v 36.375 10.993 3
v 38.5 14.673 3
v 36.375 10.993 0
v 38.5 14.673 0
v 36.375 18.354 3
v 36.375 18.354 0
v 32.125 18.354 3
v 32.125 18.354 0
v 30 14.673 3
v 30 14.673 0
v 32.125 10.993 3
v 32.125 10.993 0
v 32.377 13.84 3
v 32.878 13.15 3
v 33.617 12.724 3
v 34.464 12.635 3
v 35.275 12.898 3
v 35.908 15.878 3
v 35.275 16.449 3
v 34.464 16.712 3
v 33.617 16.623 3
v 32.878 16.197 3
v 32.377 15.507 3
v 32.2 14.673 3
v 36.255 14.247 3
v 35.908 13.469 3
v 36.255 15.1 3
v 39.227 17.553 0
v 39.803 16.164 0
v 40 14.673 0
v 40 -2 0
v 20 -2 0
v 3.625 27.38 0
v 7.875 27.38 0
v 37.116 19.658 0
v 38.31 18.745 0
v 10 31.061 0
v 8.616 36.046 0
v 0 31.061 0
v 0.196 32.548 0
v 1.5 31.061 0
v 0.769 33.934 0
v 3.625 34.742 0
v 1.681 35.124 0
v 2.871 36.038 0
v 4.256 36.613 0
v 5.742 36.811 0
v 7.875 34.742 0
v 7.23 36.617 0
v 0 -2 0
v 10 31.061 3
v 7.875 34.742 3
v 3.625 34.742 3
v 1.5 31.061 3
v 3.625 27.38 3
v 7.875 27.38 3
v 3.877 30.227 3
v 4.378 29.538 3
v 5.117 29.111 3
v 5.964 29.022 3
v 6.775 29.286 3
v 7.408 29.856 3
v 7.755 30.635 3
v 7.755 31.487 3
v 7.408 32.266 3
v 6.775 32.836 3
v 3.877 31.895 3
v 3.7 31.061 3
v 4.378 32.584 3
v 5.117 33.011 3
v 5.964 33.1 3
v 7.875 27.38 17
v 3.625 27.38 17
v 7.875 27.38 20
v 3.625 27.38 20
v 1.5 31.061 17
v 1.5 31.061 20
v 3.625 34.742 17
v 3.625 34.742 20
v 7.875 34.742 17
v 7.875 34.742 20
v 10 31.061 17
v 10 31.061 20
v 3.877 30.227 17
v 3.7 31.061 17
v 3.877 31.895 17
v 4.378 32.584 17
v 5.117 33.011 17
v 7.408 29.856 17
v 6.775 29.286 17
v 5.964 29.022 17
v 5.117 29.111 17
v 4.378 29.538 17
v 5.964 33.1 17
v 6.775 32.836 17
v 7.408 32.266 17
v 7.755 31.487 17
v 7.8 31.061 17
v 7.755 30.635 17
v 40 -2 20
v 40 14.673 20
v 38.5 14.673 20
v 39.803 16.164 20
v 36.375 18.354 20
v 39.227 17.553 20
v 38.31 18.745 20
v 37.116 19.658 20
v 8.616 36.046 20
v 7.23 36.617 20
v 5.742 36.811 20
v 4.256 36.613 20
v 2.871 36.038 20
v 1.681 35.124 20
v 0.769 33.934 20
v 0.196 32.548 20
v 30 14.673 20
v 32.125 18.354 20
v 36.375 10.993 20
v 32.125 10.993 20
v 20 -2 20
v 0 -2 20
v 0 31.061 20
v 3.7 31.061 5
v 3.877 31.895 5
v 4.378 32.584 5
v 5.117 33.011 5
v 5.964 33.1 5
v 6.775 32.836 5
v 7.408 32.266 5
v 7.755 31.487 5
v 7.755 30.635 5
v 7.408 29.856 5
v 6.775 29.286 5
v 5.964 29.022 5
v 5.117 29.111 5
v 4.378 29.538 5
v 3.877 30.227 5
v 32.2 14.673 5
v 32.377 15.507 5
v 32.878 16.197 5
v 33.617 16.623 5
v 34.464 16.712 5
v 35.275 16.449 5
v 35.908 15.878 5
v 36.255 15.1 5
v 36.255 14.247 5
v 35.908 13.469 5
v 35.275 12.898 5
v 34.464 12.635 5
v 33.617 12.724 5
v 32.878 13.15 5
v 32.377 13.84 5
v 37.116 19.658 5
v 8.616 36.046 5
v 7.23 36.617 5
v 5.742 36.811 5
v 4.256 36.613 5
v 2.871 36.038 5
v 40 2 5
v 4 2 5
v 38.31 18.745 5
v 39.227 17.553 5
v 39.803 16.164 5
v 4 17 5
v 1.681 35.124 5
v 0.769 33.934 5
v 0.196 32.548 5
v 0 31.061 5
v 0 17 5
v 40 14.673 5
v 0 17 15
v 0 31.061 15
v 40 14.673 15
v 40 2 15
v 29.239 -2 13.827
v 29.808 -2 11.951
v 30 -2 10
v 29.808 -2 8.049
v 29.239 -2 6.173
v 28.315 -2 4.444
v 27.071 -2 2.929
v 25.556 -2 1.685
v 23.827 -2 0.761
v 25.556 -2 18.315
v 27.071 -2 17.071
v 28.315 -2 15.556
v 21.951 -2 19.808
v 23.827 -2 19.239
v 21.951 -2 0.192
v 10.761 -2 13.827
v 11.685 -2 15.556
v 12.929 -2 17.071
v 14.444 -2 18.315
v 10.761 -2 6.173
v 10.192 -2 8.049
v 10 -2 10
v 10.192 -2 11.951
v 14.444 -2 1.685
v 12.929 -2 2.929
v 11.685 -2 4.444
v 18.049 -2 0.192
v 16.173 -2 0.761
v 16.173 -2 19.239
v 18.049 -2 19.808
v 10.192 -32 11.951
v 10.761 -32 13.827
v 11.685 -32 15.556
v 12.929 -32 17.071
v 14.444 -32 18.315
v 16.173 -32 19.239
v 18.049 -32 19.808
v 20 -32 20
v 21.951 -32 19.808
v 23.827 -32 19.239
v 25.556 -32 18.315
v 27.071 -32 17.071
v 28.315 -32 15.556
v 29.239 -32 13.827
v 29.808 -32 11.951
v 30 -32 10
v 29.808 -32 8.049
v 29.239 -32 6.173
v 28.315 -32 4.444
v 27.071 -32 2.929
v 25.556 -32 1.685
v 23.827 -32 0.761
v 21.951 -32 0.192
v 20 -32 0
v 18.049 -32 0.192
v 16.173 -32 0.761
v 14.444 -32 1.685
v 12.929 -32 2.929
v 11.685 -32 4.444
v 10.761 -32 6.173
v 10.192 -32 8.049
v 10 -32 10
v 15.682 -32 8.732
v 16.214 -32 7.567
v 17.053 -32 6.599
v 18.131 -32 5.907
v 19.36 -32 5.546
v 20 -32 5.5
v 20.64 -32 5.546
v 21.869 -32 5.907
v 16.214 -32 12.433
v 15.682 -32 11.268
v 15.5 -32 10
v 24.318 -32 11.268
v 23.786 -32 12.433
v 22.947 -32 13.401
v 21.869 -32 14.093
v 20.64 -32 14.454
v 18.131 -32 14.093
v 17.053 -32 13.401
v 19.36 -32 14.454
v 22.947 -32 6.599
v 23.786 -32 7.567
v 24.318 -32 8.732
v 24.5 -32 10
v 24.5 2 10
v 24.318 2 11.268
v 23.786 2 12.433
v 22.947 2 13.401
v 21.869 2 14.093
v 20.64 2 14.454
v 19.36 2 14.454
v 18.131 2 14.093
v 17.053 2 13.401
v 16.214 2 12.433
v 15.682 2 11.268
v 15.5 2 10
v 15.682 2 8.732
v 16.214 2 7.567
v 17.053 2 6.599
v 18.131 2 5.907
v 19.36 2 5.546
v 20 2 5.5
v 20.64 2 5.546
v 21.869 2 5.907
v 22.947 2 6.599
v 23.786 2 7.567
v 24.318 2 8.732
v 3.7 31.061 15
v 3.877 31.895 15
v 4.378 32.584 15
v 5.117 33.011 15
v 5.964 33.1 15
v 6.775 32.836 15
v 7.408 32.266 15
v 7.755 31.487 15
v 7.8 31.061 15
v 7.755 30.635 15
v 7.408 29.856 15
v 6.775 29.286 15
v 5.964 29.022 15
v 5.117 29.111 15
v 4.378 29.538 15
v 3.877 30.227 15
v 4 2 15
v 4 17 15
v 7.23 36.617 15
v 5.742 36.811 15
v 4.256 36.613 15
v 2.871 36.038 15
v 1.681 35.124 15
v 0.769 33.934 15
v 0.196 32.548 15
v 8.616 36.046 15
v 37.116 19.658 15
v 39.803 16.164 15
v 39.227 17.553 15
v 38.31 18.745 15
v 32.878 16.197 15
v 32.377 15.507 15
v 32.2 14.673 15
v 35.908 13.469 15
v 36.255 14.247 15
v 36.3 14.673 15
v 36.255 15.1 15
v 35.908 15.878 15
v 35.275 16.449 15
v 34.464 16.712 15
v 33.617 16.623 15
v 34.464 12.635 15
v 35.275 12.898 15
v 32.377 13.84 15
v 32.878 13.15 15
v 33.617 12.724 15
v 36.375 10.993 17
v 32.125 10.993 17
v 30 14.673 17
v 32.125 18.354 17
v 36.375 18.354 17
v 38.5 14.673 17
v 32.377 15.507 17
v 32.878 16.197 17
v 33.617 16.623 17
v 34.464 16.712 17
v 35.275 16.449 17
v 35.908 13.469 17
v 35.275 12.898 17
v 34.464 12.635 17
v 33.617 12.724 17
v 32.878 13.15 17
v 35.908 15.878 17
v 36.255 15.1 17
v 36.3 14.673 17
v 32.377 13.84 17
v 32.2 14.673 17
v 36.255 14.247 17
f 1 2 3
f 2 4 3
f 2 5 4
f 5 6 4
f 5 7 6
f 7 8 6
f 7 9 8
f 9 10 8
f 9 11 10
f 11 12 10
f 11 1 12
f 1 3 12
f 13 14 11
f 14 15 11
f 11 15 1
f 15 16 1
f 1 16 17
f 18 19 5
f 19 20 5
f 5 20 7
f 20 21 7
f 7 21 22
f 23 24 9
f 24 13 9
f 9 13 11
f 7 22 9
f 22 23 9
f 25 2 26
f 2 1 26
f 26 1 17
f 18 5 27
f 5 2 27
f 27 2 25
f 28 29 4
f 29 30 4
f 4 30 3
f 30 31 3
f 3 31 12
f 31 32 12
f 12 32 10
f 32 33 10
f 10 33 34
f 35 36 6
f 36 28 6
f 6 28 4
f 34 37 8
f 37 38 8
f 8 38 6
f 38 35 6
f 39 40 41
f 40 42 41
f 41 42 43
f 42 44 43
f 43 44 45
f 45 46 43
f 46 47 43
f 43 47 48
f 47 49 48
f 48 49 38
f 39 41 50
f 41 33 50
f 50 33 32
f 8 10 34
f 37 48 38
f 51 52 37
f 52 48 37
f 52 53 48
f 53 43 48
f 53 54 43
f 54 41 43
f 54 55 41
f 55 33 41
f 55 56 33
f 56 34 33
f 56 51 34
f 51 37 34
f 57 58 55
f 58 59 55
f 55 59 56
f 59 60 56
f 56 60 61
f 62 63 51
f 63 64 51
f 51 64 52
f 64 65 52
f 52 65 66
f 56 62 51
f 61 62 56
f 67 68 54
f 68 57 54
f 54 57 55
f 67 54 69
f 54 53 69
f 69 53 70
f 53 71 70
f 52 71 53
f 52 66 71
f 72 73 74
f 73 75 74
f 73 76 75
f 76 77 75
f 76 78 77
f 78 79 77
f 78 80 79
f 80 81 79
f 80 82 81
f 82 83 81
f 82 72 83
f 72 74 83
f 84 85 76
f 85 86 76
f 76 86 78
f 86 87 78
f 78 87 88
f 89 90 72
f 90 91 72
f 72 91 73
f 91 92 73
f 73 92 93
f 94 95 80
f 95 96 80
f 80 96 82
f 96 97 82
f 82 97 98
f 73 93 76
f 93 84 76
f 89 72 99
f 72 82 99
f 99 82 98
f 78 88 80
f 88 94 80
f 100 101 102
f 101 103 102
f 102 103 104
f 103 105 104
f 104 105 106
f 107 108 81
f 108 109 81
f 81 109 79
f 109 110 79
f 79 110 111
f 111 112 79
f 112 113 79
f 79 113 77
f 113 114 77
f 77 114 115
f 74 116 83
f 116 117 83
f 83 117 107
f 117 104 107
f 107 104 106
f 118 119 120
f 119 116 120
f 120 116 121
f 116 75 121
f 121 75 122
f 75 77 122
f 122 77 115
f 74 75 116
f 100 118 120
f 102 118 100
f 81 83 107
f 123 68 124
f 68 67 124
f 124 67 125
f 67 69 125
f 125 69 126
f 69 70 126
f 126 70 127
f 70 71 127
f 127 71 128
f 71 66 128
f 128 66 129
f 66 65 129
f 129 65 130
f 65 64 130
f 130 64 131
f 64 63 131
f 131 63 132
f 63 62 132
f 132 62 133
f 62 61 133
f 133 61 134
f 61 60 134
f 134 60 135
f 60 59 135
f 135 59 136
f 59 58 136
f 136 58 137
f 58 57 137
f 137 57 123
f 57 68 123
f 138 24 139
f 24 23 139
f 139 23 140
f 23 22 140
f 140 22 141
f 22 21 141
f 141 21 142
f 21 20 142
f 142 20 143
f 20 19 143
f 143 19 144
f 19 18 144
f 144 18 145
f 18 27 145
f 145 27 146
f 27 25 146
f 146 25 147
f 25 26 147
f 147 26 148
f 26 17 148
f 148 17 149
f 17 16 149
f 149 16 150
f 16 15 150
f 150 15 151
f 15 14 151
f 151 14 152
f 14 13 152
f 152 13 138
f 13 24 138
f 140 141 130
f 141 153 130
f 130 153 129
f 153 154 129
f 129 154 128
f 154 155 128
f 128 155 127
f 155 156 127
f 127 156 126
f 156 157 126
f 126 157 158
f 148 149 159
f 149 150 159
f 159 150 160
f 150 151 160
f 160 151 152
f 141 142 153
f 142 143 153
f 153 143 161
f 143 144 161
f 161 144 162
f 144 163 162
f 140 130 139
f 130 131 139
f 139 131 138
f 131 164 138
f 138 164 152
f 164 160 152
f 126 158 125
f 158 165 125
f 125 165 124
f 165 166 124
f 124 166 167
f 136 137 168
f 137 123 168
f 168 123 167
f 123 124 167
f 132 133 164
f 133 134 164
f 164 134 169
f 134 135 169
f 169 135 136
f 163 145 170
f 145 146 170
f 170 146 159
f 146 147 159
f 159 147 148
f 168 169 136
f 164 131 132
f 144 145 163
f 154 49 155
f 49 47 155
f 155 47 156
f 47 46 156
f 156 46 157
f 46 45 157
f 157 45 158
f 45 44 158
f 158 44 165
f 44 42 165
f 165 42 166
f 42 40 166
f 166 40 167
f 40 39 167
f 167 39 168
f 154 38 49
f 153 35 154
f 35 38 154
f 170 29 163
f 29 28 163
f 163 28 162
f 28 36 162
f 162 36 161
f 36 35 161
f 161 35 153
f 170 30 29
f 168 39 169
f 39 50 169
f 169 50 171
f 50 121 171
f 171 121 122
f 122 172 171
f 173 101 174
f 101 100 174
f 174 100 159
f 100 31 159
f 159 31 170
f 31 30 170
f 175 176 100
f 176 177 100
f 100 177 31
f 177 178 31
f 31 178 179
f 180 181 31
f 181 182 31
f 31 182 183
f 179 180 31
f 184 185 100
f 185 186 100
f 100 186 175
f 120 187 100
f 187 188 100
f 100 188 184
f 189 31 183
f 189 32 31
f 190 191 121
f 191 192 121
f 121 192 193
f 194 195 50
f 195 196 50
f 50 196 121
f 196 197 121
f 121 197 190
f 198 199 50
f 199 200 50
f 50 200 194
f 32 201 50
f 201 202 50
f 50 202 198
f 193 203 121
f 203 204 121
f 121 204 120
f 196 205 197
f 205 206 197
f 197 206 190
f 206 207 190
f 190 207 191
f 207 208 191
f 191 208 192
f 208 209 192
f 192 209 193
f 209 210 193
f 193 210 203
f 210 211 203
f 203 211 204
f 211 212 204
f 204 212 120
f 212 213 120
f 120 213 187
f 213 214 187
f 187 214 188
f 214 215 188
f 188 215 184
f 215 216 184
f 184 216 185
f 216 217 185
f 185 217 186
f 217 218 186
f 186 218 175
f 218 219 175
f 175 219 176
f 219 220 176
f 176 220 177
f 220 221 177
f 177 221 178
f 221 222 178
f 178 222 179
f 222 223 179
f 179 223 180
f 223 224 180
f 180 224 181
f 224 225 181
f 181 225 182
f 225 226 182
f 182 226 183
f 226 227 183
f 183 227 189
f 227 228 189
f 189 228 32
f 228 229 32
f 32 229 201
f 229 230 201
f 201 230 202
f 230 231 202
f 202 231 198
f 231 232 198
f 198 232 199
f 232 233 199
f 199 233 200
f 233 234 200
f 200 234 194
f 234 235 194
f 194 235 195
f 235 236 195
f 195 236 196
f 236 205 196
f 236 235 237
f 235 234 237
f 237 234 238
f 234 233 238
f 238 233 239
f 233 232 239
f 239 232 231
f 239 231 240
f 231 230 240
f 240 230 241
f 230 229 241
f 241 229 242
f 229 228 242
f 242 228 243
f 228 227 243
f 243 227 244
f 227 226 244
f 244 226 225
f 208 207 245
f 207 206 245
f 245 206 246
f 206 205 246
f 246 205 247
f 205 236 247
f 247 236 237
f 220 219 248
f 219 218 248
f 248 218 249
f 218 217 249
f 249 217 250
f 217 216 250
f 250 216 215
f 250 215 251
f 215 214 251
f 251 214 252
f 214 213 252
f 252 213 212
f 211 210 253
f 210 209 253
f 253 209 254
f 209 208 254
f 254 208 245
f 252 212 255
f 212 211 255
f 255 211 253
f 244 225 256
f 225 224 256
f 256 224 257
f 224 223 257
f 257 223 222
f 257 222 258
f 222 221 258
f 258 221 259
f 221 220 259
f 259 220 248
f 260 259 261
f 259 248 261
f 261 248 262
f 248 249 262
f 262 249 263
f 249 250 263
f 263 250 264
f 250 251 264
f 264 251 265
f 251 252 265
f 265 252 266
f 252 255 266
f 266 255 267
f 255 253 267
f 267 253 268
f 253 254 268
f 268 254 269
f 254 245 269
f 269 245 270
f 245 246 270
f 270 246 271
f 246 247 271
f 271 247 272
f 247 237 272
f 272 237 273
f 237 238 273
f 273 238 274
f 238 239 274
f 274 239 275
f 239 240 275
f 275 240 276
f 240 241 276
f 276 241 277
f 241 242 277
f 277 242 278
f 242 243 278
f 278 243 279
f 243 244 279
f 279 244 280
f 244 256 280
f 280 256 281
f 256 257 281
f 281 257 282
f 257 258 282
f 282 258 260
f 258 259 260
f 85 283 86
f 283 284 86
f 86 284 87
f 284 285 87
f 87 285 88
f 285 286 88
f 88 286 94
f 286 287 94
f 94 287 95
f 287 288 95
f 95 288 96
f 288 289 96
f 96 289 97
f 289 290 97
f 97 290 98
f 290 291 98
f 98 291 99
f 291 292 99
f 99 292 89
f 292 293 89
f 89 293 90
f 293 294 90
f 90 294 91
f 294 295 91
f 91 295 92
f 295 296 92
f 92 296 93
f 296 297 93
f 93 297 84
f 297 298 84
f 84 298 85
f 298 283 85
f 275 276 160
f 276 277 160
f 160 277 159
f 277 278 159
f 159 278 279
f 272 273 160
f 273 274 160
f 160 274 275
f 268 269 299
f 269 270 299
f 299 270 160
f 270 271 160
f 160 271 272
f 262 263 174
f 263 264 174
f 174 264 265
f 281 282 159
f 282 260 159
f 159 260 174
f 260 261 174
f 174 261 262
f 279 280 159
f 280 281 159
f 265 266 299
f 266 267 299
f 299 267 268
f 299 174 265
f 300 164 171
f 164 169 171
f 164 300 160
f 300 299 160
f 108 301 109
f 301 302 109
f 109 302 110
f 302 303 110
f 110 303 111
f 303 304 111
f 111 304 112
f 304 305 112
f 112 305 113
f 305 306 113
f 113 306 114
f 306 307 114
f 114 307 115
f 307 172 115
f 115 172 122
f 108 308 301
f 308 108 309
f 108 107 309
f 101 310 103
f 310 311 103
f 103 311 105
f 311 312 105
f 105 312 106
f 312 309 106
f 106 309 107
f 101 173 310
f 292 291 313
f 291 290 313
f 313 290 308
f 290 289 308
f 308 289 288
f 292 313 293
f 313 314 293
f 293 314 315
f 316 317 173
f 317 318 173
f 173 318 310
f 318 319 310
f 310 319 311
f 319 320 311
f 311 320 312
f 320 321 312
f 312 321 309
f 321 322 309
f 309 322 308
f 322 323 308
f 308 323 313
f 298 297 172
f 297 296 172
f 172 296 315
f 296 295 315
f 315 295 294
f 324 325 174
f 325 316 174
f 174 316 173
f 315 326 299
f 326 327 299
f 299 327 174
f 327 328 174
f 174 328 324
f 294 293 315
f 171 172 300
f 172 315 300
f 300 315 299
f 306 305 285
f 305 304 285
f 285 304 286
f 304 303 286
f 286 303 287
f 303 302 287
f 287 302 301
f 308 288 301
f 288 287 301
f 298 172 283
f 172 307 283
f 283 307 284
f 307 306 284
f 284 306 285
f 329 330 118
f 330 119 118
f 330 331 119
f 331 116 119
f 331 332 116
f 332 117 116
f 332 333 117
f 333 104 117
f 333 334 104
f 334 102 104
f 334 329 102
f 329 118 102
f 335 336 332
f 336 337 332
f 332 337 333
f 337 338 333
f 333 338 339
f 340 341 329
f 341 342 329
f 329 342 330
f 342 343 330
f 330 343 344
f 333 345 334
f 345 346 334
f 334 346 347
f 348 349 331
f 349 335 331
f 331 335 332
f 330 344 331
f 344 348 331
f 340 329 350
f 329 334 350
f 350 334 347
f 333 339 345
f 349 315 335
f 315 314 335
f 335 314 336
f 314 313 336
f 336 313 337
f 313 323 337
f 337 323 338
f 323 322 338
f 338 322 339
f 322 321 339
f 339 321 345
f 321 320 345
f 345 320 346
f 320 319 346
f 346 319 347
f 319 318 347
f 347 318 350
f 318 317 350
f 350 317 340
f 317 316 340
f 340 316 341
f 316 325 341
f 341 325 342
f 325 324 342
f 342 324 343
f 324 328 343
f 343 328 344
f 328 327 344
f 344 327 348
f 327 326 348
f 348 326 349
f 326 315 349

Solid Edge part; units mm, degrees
sketch "Sketch1" plane through (0, 0, 0) normal (0, 0, 1) x (1, 0, 0)
  line L0 (37.1162, 19.6582) -> (8.6162, 36.0457)
  line L1 (0, -2) -> (0, 31.061)
  line L2 (0, -2) -> (40, -2)
  line L3 (40, -2) -> (40, 14.6735)
  arc A0 (8.6162, 36.0457) -> (0, 31.061) centre (5.75, 31.061) ccw
  arc A1 (37.1162, 19.6582) -> (40, 14.6735) centre (34.25, 14.6735) cw
  circle A2 centre (34.25, 14.6735) radius 2.05
  circle A3 centre (5.75, 31.061) radius 2.05
extrude "Protrusion1" add sketch "Sketch1" along normal blind 20
sketch "Sketch2" plane through (20, 18.4055, 0) normal (0, 0, -1) x (1, 0, 0)
  line L0 (-12.125, -8.9749) -> (-16.375, -8.9749)
  line L1 (-16.375, -8.9749) -> (-18.5, -12.6555)
  line L2 (-18.5, -12.6555) -> (-16.375, -16.3361)
  line L3 (-16.375, -16.3361) -> (-12.125, -16.3361)
  line L4 (-12.125, -16.3361) -> (-10, -12.6555)
  line L5 (-10, -12.6555) -> (-12.125, -8.9749)
  line L6 (12.125, 7.4126) -> (10, 3.732)
  line L7 (10, 3.732) -> (12.125, 0.0514)
  line L8 (12.125, 0.0514) -> (16.375, 0.0514)
  line L9 (16.375, 0.0514) -> (18.5, 3.732)
  line L10 (18.5, 3.732) -> (16.375, 7.4126)
  line L11 (16.375, 7.4126) -> (12.125, 7.4126)
extrude "ExtrudedCutout_1" cut sketch "Sketch2" against normal blind 3
sketch "Sketch3" plane through (20, 17.4055, 20) normal (0, 0, 1) x (1, 0, 0)
  line L0 (-10, 13.6555) -> (-12.125, 17.3361)
  line L1 (-12.125, 17.3361) -> (-16.375, 17.3361)
  line L2 (-16.375, 17.3361) -> (-18.5, 13.6555)
  line L3 (-18.5, 13.6555) -> (-16.375, 9.9749)
  line L4 (-16.375, 9.9749) -> (-12.125, 9.9749)
  line L5 (-12.125, 9.9749) -> (-10, 13.6555)
  line L6 (18.5, -2.732) -> (16.375, 0.9486)
  line L7 (16.375, 0.9486) -> (12.125, 0.9486)
  line L8 (12.125, 0.9486) -> (10, -2.732)
  line L9 (10, -2.732) -> (12.125, -6.4126)
  line L10 (12.125, -6.4126) -> (16.375, -6.4126)
  line L11 (16.375, -6.4126) -> (18.5, -2.732)
extrude "ExtrudedCutout_2" cut sketch "Sketch3" against normal blind 3
sketch "Sketch4" plane through (40, 6.3367, 10) normal (1, 0, 0) x (0, 0, -1)
  line L0 (-5, -4.3367) -> (5, -4.3367)
  line L1 (5, -4.3367) -> (5, 30.4742)
  line L2 (5, 30.4742) -> (-5, 30.4742)
  line L3 (-5, 30.4742) -> (-5, -4.3367)
extrude "ExtrudedCutout_3" cut sketch "Sketch4" against normal blind 40
sketch "Sketch5" plane through (20, -2, 10) normal (0, -1, 0) x (0, 0, -1)
  circle A0 centre (0, 0) radius 4.5
extrude "ExtrudedCutout_4" cut sketch "Sketch5" against normal blind 4
sketch "Sketch6" plane through (20, -2, 10) normal (0, -1, 0) x (0, 0, -1)
  circle A0 centre (0, 0) radius 10
  circle A1 centre (0, 0) radius 4.5
extrude "ExtrudedProtrusion_2" add sketch "Sketch6" along normal blind 30
sketch "Sketch7" plane through (20, 2, 10) normal (0, 1, 0) x (1, 0, 0)
  line L0 (-20, -5) -> (-16, -5)
  line L1 (-16, -5) -> (-16, 5)
  line L2 (-16, 5) -> (-20, 5)
  line L3 (-20, 5) -> (-20, -5)
extrude "ExtrudedProtrusion_3" add sketch "Sketch7" along normal blind 15
